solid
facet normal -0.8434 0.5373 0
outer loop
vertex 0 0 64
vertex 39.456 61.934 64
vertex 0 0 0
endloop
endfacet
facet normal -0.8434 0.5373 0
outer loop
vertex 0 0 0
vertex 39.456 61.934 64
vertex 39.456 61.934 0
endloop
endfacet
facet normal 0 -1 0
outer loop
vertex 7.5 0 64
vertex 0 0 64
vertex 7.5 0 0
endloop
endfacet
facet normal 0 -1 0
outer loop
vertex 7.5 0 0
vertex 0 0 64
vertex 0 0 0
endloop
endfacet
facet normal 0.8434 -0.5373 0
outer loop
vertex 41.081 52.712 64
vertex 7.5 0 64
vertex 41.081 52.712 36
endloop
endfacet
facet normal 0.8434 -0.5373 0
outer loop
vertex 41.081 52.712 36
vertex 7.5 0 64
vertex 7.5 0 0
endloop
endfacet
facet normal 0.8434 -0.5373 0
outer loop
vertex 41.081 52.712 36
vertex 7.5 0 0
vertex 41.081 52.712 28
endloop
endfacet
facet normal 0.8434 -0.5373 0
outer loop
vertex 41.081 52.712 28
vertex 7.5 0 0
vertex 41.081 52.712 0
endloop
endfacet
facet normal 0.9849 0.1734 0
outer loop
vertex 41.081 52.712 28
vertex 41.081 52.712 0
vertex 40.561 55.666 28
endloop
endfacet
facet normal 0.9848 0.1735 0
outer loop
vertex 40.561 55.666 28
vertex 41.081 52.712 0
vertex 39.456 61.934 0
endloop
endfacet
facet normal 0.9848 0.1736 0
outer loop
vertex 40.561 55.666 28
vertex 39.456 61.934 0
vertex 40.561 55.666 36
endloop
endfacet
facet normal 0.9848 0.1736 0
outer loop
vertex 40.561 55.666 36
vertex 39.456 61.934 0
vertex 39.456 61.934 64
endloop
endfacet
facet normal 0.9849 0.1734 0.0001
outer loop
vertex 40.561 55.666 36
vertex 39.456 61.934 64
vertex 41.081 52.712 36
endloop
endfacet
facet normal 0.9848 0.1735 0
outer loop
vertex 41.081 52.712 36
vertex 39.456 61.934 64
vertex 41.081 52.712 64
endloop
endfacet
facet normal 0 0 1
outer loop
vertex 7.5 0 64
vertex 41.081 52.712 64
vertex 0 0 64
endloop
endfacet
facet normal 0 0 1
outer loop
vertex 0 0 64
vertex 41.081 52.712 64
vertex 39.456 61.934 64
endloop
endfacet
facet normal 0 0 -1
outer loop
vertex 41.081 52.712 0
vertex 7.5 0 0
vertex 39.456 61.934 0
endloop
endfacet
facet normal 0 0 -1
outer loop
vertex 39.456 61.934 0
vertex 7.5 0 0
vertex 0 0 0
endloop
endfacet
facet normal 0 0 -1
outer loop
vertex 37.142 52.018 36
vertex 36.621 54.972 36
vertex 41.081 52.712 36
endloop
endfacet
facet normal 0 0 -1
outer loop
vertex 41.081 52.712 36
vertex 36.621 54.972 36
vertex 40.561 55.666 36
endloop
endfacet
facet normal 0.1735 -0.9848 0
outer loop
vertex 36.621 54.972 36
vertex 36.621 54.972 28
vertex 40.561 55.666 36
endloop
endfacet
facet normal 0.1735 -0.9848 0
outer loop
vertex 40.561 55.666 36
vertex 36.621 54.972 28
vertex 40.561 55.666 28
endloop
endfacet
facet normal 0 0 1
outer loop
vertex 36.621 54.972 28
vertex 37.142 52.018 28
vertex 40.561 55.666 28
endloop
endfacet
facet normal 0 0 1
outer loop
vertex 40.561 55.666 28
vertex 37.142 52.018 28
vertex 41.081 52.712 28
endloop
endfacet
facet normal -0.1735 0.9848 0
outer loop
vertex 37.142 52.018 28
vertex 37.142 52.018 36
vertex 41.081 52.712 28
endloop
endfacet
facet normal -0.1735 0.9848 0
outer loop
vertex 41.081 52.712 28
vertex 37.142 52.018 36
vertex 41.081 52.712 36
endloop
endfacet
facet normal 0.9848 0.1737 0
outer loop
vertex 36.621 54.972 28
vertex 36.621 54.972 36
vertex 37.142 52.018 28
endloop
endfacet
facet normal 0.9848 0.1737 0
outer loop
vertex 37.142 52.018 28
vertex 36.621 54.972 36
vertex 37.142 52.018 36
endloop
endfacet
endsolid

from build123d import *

# Parameters (mm, degrees)
BOSS_EXTRUDE1_DEPTH = 64
CUT_EXTRUDE1_DEPTH  = 4


with BuildPart() as part:
    # Sketch1 → Boss-Extrude1 (new body)
    with BuildSketch(Plane.XY):
        Polygon((0, 0), (7.5, 0), (41.081225522, 52.711965363), (39.456184018, 61.933802982), align=None)
    extrude(amount=BOSS_EXTRUDE1_DEPTH)

    # Sketch2 → Cut-Extrude1 (cut)
    with BuildSketch(Plane(origin=(48.852955135, 8.608705004, 0), x_dir=(0, 0, -1), z_dir=(0.9848263256181995, 0.1735428142256437, 0))):
        Polygon((-32, 44.782779676), (-28, 44.782779676), (-28, 47.782779676), (-36, 47.782779676), (-36, 44.782779676), align=None)
    extrude(amount=-CUT_EXTRUDE1_DEPTH, mode=Mode.SUBTRACT)


solid = part.part
